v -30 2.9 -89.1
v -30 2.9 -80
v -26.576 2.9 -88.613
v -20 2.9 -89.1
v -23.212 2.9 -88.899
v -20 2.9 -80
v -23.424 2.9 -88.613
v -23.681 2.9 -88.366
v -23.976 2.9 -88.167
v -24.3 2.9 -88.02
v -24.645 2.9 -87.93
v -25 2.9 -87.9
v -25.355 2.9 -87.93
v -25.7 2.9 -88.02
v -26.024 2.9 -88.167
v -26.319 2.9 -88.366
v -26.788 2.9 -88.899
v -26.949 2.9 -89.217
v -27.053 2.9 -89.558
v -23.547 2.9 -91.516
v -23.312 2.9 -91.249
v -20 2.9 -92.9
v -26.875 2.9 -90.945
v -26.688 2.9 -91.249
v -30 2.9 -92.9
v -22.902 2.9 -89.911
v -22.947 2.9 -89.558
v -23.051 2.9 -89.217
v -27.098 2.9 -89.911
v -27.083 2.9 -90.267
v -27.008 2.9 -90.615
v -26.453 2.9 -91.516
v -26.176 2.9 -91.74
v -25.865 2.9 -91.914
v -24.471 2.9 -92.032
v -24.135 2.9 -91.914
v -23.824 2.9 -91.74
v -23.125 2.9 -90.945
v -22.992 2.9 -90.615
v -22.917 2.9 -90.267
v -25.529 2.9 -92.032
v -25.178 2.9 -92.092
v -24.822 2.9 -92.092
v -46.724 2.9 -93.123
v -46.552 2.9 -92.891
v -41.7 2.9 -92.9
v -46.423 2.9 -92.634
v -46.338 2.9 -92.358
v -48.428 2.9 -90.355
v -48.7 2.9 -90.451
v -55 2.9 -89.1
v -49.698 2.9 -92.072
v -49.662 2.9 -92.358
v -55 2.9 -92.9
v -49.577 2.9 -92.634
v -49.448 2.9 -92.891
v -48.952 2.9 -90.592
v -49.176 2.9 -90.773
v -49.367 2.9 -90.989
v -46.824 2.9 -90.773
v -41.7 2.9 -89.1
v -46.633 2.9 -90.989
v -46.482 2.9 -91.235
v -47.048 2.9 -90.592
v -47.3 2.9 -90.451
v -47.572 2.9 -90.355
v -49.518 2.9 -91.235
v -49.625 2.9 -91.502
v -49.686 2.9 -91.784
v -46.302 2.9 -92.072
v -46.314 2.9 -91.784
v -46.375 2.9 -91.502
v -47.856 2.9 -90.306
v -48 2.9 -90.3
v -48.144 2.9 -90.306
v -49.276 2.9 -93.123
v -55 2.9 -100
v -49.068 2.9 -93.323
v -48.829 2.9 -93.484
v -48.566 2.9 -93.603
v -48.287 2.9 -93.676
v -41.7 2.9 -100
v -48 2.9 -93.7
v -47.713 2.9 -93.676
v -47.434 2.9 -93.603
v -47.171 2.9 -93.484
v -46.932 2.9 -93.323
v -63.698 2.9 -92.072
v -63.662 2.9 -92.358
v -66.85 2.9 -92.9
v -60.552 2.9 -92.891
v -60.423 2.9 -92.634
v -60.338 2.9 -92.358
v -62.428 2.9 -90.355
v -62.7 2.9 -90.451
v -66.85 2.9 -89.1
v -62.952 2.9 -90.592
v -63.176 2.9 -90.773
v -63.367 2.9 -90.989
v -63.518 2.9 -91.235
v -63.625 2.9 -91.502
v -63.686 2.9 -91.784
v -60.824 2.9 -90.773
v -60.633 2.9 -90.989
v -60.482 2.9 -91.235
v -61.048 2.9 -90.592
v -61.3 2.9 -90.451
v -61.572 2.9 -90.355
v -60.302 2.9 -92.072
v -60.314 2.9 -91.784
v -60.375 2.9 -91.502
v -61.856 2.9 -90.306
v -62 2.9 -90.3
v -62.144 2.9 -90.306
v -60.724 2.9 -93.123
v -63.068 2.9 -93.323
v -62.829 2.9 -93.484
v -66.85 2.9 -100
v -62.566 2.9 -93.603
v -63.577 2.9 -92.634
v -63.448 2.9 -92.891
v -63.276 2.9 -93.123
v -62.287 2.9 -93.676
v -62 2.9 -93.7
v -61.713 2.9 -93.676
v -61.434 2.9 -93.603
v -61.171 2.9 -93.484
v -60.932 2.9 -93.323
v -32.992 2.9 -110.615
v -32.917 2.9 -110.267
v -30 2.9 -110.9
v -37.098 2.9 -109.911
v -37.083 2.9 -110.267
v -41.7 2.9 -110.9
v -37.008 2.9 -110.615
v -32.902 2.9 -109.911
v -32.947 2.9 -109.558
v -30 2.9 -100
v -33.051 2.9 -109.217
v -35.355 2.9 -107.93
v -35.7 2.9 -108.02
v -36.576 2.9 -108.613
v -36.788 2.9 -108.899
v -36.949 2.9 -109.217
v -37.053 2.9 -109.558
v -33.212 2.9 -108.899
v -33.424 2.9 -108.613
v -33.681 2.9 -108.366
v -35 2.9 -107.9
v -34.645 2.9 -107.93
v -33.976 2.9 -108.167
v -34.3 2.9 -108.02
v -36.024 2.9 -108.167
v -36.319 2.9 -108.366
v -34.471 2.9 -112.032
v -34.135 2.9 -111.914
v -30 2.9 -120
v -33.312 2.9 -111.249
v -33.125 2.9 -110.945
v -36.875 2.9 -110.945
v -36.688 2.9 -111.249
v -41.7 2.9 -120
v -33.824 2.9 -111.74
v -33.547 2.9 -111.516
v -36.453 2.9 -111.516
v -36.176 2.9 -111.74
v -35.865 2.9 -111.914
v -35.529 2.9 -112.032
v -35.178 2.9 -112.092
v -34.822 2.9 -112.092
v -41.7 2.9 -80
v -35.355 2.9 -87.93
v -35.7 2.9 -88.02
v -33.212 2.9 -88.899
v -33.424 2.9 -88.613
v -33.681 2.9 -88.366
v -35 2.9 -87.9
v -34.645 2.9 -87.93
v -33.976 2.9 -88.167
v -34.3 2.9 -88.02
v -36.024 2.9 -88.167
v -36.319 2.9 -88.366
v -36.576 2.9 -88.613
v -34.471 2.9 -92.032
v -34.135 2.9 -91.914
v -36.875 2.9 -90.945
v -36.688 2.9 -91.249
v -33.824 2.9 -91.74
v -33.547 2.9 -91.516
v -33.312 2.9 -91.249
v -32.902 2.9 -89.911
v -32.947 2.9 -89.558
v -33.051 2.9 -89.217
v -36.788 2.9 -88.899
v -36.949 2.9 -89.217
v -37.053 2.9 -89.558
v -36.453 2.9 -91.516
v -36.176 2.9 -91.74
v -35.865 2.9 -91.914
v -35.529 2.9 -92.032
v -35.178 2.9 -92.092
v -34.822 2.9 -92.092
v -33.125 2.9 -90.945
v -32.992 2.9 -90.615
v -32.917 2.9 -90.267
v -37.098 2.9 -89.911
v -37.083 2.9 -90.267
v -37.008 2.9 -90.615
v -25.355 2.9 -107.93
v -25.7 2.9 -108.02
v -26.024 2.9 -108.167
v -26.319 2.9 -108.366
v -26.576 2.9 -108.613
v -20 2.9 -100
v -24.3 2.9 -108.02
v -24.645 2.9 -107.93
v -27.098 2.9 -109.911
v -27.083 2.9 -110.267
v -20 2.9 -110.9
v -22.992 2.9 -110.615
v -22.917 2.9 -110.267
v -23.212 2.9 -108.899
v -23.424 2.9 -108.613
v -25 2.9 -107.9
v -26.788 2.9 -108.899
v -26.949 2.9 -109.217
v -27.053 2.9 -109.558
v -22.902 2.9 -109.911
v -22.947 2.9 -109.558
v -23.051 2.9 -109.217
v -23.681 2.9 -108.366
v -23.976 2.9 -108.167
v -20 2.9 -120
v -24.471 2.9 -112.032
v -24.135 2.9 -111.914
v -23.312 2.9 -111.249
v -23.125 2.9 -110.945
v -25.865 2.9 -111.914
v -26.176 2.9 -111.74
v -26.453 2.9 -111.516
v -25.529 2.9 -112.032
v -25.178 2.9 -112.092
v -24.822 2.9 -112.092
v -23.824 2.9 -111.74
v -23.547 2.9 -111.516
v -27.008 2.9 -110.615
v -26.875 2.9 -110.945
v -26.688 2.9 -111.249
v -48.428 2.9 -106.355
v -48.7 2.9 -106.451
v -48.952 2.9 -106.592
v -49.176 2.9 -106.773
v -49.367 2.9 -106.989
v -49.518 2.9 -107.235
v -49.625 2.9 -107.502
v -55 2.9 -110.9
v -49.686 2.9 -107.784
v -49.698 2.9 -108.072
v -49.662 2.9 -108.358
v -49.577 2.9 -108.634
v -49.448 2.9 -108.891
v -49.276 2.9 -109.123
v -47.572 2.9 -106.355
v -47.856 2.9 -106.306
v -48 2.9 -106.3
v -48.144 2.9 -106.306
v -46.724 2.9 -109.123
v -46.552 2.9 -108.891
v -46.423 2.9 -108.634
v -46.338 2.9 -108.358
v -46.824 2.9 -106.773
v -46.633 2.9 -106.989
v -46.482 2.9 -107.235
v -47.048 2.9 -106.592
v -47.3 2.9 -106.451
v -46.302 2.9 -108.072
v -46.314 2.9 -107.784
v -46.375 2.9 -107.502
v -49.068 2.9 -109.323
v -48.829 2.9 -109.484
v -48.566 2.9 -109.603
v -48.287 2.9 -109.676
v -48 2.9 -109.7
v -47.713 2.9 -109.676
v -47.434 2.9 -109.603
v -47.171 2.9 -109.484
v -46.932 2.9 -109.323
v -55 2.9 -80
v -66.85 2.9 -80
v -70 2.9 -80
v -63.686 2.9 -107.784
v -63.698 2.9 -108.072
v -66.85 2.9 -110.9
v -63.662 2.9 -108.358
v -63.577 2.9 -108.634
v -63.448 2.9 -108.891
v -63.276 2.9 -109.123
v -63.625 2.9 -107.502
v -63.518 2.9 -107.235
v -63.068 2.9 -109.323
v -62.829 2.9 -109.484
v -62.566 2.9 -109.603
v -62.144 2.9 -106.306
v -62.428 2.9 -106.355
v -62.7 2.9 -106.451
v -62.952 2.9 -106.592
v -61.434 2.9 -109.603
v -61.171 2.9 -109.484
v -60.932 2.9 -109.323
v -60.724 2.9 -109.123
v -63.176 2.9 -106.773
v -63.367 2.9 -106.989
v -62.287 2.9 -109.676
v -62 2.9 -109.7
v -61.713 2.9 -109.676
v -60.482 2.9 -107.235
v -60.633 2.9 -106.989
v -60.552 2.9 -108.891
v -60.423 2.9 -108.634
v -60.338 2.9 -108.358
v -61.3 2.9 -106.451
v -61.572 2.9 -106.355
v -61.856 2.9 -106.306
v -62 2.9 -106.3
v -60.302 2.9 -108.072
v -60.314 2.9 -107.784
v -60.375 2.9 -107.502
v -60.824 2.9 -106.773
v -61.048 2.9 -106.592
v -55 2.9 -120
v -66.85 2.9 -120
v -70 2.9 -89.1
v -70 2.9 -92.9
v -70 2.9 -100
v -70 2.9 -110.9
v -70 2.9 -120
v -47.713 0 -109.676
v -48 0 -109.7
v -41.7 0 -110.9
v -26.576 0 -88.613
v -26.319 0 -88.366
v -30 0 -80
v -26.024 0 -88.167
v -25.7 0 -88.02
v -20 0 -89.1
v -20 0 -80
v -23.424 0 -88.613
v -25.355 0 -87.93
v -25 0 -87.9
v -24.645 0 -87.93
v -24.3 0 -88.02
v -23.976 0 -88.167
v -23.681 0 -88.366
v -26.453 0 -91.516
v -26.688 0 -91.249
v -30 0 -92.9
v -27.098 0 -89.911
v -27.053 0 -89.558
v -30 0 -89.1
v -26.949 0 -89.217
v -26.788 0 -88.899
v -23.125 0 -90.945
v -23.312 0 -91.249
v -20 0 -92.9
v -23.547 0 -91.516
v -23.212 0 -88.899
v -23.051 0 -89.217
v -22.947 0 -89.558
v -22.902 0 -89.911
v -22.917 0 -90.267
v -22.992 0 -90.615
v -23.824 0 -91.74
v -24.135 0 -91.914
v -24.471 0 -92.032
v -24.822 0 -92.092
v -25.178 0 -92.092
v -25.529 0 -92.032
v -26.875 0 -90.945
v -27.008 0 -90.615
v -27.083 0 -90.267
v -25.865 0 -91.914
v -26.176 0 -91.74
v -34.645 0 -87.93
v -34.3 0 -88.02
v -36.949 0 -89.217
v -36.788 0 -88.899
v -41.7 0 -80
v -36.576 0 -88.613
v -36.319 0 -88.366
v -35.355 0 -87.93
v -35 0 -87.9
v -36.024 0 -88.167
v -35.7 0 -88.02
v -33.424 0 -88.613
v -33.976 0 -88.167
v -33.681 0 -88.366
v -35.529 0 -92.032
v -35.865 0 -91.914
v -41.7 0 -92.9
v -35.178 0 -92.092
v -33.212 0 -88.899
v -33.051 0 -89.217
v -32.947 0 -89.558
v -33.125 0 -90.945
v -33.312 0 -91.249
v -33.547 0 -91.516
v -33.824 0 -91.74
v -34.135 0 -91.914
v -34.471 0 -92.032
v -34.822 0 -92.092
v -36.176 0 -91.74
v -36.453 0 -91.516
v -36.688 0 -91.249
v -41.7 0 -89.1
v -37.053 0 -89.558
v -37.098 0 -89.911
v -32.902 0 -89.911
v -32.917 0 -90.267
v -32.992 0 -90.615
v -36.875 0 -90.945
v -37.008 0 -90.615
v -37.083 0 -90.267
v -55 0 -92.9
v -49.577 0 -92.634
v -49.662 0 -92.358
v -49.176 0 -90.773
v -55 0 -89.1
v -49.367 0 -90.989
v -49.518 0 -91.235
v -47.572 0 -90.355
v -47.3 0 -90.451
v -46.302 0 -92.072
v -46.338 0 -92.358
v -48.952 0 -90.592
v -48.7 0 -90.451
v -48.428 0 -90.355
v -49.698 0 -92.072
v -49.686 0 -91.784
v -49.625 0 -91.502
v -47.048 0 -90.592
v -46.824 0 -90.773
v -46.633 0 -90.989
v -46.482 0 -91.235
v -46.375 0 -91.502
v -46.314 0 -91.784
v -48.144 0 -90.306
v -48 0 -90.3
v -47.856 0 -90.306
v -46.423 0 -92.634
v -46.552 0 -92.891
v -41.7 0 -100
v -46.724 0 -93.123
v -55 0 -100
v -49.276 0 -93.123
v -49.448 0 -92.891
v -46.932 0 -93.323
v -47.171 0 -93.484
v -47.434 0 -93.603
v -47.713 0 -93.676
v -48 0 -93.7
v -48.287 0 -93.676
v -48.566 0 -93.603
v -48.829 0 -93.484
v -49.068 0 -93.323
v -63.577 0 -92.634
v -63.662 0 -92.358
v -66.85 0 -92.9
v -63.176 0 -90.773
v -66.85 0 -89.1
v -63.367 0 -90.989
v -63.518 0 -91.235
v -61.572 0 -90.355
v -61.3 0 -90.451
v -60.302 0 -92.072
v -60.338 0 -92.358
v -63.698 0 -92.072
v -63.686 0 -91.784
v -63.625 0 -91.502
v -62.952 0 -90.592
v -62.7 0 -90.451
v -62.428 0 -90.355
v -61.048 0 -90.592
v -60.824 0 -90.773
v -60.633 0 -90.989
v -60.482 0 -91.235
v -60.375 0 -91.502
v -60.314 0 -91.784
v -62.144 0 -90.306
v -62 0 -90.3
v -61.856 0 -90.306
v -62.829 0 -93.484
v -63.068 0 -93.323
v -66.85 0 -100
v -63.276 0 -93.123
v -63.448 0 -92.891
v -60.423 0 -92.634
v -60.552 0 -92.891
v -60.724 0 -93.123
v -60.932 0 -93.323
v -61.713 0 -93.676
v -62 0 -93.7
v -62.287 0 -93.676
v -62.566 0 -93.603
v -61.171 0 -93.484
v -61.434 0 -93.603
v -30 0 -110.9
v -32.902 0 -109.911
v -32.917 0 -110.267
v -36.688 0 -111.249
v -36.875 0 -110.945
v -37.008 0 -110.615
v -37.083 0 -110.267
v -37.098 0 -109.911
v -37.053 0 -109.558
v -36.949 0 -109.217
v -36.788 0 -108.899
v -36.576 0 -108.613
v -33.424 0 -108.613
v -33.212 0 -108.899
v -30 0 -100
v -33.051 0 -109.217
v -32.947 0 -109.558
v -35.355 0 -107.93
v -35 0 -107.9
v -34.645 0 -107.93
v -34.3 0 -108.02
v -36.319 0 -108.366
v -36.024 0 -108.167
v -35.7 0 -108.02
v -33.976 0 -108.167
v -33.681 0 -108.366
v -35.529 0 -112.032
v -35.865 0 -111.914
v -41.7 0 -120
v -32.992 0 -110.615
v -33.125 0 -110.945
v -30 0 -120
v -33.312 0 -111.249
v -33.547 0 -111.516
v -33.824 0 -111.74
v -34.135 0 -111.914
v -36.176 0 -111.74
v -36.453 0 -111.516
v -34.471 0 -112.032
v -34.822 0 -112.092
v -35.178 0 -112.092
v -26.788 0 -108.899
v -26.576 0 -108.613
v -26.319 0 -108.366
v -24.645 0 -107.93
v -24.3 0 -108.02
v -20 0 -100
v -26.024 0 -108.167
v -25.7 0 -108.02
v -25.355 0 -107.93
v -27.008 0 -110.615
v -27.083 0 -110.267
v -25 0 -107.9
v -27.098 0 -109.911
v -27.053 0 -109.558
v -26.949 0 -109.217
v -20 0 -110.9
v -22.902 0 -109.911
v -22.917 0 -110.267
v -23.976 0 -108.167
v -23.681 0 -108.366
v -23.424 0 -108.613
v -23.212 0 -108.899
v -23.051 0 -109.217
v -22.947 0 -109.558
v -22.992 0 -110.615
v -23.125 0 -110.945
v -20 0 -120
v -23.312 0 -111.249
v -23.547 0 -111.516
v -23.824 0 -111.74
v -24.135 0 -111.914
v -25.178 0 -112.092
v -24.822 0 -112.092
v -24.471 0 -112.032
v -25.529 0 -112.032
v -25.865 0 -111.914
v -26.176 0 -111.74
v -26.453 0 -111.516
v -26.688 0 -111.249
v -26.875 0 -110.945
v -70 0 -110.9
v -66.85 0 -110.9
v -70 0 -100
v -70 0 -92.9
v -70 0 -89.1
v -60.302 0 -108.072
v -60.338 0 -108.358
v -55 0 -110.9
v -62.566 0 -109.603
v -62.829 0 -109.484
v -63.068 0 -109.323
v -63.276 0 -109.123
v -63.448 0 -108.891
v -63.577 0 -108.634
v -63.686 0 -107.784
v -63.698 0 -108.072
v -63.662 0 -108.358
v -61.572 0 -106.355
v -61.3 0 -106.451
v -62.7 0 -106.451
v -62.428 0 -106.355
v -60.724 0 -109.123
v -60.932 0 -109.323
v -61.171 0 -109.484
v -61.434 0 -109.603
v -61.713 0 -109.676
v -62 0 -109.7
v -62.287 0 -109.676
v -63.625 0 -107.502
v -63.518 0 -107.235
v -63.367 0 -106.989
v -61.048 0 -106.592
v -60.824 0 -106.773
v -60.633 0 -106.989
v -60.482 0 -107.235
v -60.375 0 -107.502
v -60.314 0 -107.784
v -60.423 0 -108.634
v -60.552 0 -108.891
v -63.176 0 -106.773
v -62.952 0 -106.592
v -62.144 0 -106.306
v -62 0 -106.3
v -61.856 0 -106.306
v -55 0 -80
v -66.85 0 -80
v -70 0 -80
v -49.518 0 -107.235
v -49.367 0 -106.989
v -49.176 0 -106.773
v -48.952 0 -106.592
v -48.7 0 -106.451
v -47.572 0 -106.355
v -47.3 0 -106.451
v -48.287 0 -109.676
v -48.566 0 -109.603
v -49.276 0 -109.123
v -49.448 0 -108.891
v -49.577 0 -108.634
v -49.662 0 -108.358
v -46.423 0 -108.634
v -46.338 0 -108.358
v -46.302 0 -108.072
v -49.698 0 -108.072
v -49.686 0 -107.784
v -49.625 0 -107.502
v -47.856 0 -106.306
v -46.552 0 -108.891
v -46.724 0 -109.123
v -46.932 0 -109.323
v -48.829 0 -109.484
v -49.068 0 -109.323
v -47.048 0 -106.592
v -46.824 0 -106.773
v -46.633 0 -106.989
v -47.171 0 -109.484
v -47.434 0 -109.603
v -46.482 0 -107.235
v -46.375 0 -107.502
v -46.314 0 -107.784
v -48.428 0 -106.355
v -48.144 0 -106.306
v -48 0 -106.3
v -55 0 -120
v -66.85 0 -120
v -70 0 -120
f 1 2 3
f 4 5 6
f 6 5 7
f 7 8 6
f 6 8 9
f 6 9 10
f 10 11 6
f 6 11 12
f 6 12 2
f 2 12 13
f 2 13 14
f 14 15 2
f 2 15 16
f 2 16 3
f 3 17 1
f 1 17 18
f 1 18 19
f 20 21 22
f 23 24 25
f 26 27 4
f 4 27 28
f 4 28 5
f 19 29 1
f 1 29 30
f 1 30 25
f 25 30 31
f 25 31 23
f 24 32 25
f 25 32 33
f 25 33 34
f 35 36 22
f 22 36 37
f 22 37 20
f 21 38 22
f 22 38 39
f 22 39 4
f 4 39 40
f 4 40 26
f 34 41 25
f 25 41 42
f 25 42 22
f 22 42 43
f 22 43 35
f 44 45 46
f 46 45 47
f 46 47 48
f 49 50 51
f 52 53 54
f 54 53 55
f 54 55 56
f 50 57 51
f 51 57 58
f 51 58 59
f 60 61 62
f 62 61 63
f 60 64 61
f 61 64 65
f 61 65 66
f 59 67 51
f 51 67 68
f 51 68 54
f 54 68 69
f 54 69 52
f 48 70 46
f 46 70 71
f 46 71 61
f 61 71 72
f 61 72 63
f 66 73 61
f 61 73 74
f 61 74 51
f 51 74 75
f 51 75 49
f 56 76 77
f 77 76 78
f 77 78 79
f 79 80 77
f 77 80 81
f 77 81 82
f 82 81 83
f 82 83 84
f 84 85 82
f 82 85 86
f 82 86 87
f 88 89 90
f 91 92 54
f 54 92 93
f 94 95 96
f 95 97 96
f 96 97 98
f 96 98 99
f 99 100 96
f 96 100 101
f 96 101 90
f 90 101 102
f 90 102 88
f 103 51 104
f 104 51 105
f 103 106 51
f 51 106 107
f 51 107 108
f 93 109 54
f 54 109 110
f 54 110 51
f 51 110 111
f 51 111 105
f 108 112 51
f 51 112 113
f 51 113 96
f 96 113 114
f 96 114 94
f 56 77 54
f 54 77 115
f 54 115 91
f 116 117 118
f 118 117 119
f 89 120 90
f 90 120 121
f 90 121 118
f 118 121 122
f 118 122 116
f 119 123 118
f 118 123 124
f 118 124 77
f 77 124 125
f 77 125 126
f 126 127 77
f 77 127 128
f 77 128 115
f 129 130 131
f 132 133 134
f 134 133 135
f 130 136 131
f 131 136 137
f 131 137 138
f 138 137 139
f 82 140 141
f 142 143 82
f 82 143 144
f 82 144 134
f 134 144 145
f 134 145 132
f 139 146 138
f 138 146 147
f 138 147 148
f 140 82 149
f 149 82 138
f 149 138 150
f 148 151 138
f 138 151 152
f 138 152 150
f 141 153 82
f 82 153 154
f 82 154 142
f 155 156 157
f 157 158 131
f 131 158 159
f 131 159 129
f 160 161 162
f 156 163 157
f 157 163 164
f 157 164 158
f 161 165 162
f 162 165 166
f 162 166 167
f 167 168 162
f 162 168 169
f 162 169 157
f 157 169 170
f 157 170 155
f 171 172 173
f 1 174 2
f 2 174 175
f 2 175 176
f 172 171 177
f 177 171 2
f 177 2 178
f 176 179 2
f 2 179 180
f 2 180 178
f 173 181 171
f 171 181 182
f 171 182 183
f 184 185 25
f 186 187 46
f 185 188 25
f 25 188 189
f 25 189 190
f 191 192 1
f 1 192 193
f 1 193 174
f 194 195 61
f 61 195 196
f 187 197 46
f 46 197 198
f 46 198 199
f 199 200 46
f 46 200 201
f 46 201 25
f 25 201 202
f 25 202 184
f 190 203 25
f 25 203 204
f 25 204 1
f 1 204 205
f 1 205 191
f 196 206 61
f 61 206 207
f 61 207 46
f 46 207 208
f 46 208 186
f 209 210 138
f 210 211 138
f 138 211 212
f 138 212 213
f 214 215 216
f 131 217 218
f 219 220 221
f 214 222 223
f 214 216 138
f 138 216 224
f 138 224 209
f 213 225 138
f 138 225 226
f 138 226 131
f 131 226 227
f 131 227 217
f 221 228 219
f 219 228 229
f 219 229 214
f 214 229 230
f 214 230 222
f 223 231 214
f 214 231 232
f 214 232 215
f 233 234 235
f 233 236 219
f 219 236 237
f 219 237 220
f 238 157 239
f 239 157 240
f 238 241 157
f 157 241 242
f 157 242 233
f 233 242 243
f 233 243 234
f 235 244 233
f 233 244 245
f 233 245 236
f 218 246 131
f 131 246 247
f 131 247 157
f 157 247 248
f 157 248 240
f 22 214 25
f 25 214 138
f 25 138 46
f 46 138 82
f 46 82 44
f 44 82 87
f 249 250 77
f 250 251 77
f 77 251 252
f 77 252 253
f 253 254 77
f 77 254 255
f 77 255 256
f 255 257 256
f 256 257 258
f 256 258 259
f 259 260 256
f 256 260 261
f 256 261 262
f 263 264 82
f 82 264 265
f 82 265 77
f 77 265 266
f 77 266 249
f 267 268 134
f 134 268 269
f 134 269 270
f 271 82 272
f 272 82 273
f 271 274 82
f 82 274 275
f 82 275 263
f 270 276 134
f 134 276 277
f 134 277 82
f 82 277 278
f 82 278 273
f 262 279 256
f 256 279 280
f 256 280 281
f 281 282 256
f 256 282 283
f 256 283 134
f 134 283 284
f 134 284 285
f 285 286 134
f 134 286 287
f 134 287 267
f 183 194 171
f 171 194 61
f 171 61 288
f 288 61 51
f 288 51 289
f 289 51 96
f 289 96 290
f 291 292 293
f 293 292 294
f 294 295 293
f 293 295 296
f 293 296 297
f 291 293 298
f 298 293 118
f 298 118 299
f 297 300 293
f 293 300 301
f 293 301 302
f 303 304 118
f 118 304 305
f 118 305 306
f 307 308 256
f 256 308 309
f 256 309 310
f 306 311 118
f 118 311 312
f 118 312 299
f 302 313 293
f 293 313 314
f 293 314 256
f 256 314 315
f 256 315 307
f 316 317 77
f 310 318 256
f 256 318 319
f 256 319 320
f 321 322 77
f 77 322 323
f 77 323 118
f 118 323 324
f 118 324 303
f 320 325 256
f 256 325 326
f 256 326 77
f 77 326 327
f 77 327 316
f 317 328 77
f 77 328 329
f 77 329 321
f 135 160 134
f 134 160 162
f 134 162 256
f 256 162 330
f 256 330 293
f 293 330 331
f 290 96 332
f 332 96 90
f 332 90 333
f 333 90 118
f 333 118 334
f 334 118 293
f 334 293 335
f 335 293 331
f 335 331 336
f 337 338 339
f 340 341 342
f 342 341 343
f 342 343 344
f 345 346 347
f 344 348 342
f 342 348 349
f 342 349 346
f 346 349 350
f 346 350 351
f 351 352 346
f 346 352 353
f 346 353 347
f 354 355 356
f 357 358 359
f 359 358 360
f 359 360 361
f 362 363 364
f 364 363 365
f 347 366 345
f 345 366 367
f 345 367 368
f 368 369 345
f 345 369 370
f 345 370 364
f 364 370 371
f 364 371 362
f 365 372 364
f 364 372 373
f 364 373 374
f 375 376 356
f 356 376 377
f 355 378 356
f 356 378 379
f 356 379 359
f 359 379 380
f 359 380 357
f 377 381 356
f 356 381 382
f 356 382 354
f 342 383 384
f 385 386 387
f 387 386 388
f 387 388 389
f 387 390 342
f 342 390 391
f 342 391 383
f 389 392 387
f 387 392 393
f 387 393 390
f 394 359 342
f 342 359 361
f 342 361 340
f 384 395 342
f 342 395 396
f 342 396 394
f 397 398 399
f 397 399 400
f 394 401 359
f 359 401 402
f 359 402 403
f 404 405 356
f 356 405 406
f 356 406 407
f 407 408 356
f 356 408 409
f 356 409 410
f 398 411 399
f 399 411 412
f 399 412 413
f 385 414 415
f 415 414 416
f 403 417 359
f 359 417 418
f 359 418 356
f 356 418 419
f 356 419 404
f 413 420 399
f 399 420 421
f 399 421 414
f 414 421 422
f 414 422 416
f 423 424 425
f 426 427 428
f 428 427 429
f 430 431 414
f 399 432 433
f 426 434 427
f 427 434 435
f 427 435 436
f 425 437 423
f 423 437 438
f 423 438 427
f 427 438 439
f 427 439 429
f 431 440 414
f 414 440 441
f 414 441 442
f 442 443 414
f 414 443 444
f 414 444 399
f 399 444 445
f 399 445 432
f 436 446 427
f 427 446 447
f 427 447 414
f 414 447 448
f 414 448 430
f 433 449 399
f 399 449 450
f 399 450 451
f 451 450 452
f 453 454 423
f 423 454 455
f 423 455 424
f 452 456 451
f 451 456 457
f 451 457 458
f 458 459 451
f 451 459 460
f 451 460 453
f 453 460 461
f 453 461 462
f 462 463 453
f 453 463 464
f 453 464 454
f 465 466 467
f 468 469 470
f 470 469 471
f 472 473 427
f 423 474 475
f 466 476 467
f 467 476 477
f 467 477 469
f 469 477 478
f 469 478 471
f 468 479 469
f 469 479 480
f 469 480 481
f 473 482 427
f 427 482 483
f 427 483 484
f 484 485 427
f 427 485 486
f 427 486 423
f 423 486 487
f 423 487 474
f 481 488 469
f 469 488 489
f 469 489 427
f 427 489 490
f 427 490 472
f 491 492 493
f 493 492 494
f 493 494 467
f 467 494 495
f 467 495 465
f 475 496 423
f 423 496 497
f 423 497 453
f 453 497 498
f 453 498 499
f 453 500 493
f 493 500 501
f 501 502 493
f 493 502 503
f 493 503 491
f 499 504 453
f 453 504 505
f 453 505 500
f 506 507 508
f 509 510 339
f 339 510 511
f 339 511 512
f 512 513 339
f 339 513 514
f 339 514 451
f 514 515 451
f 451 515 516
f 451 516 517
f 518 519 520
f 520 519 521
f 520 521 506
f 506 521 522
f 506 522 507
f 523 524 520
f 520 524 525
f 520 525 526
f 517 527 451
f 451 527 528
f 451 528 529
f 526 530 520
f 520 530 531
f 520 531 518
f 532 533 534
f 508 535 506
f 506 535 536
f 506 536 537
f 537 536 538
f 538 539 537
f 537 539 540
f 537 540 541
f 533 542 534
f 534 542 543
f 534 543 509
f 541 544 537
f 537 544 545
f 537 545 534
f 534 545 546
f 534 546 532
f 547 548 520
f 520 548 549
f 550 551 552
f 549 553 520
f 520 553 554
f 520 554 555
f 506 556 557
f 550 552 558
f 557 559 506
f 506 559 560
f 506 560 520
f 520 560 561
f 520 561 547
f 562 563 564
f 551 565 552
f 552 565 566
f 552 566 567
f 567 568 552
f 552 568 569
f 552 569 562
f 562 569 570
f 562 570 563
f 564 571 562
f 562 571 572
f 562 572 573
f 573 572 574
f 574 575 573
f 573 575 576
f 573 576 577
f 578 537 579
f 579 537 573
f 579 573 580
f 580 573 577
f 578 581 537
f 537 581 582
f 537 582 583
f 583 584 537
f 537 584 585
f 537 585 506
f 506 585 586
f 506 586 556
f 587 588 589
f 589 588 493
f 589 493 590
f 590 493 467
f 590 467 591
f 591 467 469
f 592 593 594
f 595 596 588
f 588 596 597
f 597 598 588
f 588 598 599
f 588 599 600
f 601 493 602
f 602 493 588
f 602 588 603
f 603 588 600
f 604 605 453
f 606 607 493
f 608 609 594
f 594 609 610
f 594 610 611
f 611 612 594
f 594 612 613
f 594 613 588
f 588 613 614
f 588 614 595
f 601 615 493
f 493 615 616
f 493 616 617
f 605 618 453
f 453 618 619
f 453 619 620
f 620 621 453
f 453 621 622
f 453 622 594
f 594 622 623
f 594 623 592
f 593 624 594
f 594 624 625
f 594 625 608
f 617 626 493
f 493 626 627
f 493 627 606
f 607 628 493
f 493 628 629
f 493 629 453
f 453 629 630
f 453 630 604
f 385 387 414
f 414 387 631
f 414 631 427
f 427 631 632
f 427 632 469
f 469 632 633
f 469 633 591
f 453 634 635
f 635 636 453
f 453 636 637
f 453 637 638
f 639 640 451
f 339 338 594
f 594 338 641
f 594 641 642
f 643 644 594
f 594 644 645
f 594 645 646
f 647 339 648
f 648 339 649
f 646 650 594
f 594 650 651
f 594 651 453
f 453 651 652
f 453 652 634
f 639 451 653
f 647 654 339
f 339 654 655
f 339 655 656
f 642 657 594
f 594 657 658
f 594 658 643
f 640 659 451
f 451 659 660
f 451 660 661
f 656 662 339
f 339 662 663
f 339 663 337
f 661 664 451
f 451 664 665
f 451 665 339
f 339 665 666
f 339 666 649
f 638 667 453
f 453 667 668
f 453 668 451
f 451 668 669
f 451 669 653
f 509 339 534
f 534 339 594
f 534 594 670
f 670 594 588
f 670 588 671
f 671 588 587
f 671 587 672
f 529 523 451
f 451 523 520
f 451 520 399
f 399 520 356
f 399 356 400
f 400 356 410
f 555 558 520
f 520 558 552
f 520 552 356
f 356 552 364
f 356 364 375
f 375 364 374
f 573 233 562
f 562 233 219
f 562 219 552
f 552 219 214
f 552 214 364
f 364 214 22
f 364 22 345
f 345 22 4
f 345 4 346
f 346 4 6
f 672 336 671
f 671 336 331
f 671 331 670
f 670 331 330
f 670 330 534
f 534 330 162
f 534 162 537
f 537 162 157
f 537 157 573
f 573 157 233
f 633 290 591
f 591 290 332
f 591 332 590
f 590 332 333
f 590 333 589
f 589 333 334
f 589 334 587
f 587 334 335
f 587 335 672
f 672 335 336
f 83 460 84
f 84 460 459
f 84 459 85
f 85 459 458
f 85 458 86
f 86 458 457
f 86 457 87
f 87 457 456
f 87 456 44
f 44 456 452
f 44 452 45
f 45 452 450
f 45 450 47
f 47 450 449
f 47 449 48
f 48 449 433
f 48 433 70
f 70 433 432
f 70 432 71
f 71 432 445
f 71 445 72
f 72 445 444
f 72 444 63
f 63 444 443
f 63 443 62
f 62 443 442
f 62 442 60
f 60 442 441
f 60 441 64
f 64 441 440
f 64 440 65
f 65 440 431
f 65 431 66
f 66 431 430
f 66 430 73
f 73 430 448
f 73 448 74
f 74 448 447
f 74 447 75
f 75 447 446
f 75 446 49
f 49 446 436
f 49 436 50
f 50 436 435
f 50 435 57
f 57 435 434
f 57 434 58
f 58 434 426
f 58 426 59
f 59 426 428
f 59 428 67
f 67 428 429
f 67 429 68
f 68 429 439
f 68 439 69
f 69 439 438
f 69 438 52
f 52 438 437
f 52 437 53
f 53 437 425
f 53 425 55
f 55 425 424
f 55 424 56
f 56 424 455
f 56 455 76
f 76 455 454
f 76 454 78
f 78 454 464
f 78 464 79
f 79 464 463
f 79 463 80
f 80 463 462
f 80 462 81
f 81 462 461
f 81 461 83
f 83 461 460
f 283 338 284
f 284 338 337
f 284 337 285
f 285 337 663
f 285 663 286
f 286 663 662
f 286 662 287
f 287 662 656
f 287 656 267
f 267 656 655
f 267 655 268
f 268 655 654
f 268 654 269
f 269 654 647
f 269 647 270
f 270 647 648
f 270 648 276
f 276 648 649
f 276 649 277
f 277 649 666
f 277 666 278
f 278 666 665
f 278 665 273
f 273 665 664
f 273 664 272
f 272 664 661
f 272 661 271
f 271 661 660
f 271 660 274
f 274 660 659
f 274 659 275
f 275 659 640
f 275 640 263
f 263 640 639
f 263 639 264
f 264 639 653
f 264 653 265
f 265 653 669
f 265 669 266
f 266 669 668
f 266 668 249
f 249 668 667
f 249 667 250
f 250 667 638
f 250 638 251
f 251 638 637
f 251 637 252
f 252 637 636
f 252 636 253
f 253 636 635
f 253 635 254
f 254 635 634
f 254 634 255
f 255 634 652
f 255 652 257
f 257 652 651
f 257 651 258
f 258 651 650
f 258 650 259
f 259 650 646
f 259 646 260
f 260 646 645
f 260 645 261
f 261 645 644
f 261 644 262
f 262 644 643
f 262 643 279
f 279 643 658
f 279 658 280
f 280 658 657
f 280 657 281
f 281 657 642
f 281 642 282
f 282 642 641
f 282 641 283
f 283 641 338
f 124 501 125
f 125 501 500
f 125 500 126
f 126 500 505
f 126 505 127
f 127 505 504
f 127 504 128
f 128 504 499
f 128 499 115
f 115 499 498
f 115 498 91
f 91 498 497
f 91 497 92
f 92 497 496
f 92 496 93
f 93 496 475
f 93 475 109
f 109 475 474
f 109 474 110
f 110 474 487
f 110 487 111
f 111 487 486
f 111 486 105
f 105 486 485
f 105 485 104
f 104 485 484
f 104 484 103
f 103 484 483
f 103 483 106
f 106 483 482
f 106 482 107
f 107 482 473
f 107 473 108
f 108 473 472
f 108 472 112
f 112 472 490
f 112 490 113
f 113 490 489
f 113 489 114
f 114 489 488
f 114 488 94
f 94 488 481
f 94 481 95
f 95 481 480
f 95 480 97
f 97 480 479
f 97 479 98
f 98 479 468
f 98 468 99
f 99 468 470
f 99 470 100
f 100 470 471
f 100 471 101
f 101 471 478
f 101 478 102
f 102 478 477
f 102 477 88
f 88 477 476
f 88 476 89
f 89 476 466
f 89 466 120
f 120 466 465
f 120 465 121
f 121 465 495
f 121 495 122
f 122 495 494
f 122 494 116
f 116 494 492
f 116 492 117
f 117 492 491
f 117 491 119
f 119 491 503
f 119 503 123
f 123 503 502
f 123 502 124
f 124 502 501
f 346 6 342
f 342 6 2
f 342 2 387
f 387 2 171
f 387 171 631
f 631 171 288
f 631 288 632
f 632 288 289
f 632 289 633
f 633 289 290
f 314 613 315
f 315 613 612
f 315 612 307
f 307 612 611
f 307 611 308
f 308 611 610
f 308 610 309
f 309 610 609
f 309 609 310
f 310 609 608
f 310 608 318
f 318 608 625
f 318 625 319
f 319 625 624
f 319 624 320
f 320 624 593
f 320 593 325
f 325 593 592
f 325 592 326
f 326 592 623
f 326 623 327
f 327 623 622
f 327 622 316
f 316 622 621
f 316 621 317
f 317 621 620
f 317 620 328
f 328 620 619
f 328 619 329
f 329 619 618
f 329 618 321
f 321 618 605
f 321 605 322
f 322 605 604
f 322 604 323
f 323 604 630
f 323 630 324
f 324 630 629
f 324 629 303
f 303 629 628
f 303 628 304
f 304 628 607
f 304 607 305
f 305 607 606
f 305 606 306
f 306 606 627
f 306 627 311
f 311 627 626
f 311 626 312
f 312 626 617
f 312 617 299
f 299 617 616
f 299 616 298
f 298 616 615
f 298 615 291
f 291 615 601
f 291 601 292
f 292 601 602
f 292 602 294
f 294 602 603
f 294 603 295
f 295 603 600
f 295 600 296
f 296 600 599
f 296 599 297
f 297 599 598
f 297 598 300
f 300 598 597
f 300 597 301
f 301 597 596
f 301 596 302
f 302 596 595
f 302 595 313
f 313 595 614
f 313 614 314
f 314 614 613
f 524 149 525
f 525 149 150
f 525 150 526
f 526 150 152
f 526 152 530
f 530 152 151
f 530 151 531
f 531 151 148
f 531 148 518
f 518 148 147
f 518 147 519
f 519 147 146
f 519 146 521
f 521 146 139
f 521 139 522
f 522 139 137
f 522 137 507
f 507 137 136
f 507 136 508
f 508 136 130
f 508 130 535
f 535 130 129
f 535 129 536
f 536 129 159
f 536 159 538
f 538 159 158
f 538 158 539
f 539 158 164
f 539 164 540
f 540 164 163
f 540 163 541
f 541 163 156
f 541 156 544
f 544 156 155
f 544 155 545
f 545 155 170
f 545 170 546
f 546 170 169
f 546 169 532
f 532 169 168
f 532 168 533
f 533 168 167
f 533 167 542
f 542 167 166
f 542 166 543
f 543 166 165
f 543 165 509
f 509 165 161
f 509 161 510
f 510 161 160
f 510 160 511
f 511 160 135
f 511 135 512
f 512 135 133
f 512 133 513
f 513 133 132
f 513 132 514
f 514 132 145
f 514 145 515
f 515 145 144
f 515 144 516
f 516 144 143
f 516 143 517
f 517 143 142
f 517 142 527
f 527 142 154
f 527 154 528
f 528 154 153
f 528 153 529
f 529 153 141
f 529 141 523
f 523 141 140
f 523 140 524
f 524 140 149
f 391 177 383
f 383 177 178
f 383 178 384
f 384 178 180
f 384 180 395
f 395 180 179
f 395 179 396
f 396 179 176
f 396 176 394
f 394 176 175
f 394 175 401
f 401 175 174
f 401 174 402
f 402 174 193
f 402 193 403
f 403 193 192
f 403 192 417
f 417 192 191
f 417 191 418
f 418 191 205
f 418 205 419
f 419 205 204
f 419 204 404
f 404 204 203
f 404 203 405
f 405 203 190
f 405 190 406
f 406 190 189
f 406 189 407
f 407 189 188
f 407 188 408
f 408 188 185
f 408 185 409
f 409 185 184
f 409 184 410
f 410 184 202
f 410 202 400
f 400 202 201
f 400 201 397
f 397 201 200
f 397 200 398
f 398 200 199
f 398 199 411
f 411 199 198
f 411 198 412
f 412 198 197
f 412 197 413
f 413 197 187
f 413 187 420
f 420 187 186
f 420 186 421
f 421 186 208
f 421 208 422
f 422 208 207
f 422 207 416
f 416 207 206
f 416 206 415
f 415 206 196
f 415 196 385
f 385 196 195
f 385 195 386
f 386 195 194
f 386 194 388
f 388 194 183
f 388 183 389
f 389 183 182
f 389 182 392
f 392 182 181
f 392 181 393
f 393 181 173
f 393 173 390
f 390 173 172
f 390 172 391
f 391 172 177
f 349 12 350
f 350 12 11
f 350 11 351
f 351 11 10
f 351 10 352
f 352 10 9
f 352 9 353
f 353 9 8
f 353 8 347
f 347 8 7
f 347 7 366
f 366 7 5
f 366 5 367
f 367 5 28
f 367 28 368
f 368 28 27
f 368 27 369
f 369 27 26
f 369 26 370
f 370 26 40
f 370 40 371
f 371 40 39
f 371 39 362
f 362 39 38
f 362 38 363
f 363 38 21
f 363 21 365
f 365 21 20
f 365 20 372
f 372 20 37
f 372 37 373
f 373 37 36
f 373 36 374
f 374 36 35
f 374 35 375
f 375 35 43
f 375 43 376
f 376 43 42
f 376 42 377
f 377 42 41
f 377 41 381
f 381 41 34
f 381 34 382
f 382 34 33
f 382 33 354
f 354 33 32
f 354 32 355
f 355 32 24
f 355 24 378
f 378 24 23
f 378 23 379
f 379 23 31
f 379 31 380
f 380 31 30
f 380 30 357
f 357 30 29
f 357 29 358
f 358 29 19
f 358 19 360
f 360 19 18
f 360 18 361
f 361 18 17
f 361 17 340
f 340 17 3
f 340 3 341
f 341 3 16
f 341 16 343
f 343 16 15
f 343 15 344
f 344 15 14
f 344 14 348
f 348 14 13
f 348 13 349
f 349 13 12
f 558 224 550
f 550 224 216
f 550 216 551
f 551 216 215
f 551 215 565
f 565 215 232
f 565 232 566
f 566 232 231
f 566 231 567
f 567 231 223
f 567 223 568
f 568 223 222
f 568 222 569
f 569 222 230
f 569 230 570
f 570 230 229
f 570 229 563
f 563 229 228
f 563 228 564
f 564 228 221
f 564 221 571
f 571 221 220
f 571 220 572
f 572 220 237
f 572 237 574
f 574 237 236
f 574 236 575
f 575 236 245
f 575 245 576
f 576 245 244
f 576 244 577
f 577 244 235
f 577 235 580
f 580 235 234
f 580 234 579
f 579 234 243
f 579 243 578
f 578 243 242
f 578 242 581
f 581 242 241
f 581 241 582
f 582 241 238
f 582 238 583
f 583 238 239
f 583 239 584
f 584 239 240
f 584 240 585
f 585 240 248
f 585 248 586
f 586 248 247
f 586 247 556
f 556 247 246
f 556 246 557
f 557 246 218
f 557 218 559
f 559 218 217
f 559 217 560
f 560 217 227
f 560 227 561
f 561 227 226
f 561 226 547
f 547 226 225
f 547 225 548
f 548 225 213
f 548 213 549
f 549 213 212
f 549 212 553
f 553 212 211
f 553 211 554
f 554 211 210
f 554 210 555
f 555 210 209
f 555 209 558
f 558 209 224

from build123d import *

# Parameters (mm, degrees)
SKETCH_1_R          = 1.7
SKETCH_1_W          = 5
SKETCH_1_H          = 13
SKETCH_1_H_2        = 2
EXTRUDE_3_DEPTH     = 2.9
SKETCH_3_R          = 2.1
CUT_EXTRUDE_3_DEPTH = 2.9


with BuildPart() as part:
    # 草图1 → 凸台-拉伸3 (new body)
    # profile 1 of 10: a face of its own
    with BuildSketch(Plane(origin=(0, 0, 0), x_dir=(1, 0, 0), z_dir=(0, 1, 0))):
        with BuildLine():
            Line((-40, 113), (-70, 113))
            Line((-70, 113), (-70, 108))
            Line((-70, 108), (-70, 92))
            Line((-70, 92), (-63.7, 92))
            ThreePointArc((-63.7, 92), (-62, 93.7), (-60.3, 92))
            ThreePointArc((-60.3, 92), (-60.797918472, 90.797918472), (-62, 90.3))
            Line((-62, 90.3), (-62, 87))
            Line((-62, 87), (-48, 87))
            Line((-48, 87), (-48, 90.3))
            ThreePointArc((-48, 90.3), (-49.202081528, 93.202081528), (-46.3, 92))
            Line((-46.3, 92), (-40, 92))
            Line((-40, 92), (-40, 113))
        make_face()
        with Locations(Location((-62, 108, 0), (0, 0, 270))):
            Circle(SKETCH_1_R, mode=Mode.SUBTRACT)
        with Locations(Location((-48, 108, 0), (0, 0, 270))):
            Circle(SKETCH_1_R, mode=Mode.SUBTRACT)
    # profile 2 of 10: a face of its own
    with BuildSketch(Plane(origin=(0, 0, 0), x_dir=(1, 0, 0), z_dir=(0, 1, 0))):
        with BuildLine():
            Line((-70, 92), (-70, 87))
            Line((-70, 87), (-62, 87))
            Line((-62, 87), (-62, 90.3))
            ThreePointArc((-62, 90.3), (-63.202081528, 90.797918472), (-63.7, 92))
            Line((-63.7, 92), (-70, 92))
        make_face()
    # profile 3 of 10: a face of its own
    with BuildSketch(Plane(origin=(0, 0, 0), x_dir=(1, 0, 0), z_dir=(0, 1, 0))):
        with BuildLine():
            Line((-48, 90.3), (-48, 87))
            Line((-48, 87), (-40, 87))
            Line((-40, 87), (-40, 92))
            Line((-40, 92), (-46.3, 92))
            ThreePointArc((-46.3, 92), (-46.797918472, 90.797918472), (-48, 90.3))
        make_face()
    # profile 4 of 10: a face of its own
    with BuildSketch(Plane(origin=(0, 0, 0), x_dir=(1, 0, 0), z_dir=(0, 1, 0))):
        Polygon((-70, 87), (-70, 80), (-20, 80), (-20, 85), (-25, 85), (-25, 87), (-40, 87), (-48, 87), (-62, 87), align=None)
    # profile 5 of 10: a face of its own
    with BuildSketch(Plane(origin=(0, 0, 0), x_dir=(1, 0, 0), z_dir=(0, 1, 0))):
        Polygon((-25, 113), (-40, 113), (-40, 92), (-40, 87), (-25, 87), (-25, 100), align=None)
    # profile 6 of 10: a face of its own
    with BuildSketch(Plane(origin=(0, 0, 0), x_dir=(1, 0, 0), z_dir=(0, 1, 0))):
        with Locations((-22.5, 93.5)):
            Rectangle(SKETCH_1_W, SKETCH_1_H)
    # profile 7 of 10: a face of its own
    with BuildSketch(Plane(origin=(0, 0, 0), x_dir=(1, 0, 0), z_dir=(0, 1, 0))):
        with Locations((-22.5, 106.5)):
            Rectangle(SKETCH_1_W, SKETCH_1_H)
    # profile 8 of 10: a face of its own
    with BuildSketch(Plane(origin=(0, 0, 0), x_dir=(1, 0, 0), z_dir=(0, 1, 0))):
        with Locations((-22.5, 86)):
            Rectangle(SKETCH_1_W, SKETCH_1_H_2)
    # profile 9 of 10: a face of its own
    with BuildSketch(Plane(origin=(0, 0, 0), x_dir=(1, 0, 0), z_dir=(0, 1, 0))):
        Polygon((-20, 120), (-70, 120), (-70, 113), (-40, 113), (-25, 113), (-25, 115), (-20, 115), align=None)
    # profile 10 of 10: a face of its own
    with BuildSketch(Plane(origin=(0, 0, 0), x_dir=(1, 0, 0), z_dir=(0, 1, 0))):
        with Locations((-22.5, 114)):
            Rectangle(SKETCH_1_W, SKETCH_1_H_2)
    extrude(amount=EXTRUDE_3_DEPTH)

    # 草图3 → 切除-拉伸3 (cut)
    with BuildSketch(Plane(origin=(0, 2.9, 0), x_dir=(1, 0, 0), z_dir=(0, 1, 0))):
        with Locations(Location((-25, 110, 0), (0, 0, 270))):
            Circle(SKETCH_3_R)
        with Locations(Location((-25, 90, 0), (0, 0, 270))):
            Circle(SKETCH_3_R)
        with Locations(Location((-35, 90, 0), (0, 0, 270))):
            Circle(SKETCH_3_R)
        with Locations(Location((-35, 110, 0), (0, 0, 270))):
            Circle(SKETCH_3_R)
    extrude(amount=-CUT_EXTRUDE_3_DEPTH, mode=Mode.SUBTRACT)


solid = part.part
